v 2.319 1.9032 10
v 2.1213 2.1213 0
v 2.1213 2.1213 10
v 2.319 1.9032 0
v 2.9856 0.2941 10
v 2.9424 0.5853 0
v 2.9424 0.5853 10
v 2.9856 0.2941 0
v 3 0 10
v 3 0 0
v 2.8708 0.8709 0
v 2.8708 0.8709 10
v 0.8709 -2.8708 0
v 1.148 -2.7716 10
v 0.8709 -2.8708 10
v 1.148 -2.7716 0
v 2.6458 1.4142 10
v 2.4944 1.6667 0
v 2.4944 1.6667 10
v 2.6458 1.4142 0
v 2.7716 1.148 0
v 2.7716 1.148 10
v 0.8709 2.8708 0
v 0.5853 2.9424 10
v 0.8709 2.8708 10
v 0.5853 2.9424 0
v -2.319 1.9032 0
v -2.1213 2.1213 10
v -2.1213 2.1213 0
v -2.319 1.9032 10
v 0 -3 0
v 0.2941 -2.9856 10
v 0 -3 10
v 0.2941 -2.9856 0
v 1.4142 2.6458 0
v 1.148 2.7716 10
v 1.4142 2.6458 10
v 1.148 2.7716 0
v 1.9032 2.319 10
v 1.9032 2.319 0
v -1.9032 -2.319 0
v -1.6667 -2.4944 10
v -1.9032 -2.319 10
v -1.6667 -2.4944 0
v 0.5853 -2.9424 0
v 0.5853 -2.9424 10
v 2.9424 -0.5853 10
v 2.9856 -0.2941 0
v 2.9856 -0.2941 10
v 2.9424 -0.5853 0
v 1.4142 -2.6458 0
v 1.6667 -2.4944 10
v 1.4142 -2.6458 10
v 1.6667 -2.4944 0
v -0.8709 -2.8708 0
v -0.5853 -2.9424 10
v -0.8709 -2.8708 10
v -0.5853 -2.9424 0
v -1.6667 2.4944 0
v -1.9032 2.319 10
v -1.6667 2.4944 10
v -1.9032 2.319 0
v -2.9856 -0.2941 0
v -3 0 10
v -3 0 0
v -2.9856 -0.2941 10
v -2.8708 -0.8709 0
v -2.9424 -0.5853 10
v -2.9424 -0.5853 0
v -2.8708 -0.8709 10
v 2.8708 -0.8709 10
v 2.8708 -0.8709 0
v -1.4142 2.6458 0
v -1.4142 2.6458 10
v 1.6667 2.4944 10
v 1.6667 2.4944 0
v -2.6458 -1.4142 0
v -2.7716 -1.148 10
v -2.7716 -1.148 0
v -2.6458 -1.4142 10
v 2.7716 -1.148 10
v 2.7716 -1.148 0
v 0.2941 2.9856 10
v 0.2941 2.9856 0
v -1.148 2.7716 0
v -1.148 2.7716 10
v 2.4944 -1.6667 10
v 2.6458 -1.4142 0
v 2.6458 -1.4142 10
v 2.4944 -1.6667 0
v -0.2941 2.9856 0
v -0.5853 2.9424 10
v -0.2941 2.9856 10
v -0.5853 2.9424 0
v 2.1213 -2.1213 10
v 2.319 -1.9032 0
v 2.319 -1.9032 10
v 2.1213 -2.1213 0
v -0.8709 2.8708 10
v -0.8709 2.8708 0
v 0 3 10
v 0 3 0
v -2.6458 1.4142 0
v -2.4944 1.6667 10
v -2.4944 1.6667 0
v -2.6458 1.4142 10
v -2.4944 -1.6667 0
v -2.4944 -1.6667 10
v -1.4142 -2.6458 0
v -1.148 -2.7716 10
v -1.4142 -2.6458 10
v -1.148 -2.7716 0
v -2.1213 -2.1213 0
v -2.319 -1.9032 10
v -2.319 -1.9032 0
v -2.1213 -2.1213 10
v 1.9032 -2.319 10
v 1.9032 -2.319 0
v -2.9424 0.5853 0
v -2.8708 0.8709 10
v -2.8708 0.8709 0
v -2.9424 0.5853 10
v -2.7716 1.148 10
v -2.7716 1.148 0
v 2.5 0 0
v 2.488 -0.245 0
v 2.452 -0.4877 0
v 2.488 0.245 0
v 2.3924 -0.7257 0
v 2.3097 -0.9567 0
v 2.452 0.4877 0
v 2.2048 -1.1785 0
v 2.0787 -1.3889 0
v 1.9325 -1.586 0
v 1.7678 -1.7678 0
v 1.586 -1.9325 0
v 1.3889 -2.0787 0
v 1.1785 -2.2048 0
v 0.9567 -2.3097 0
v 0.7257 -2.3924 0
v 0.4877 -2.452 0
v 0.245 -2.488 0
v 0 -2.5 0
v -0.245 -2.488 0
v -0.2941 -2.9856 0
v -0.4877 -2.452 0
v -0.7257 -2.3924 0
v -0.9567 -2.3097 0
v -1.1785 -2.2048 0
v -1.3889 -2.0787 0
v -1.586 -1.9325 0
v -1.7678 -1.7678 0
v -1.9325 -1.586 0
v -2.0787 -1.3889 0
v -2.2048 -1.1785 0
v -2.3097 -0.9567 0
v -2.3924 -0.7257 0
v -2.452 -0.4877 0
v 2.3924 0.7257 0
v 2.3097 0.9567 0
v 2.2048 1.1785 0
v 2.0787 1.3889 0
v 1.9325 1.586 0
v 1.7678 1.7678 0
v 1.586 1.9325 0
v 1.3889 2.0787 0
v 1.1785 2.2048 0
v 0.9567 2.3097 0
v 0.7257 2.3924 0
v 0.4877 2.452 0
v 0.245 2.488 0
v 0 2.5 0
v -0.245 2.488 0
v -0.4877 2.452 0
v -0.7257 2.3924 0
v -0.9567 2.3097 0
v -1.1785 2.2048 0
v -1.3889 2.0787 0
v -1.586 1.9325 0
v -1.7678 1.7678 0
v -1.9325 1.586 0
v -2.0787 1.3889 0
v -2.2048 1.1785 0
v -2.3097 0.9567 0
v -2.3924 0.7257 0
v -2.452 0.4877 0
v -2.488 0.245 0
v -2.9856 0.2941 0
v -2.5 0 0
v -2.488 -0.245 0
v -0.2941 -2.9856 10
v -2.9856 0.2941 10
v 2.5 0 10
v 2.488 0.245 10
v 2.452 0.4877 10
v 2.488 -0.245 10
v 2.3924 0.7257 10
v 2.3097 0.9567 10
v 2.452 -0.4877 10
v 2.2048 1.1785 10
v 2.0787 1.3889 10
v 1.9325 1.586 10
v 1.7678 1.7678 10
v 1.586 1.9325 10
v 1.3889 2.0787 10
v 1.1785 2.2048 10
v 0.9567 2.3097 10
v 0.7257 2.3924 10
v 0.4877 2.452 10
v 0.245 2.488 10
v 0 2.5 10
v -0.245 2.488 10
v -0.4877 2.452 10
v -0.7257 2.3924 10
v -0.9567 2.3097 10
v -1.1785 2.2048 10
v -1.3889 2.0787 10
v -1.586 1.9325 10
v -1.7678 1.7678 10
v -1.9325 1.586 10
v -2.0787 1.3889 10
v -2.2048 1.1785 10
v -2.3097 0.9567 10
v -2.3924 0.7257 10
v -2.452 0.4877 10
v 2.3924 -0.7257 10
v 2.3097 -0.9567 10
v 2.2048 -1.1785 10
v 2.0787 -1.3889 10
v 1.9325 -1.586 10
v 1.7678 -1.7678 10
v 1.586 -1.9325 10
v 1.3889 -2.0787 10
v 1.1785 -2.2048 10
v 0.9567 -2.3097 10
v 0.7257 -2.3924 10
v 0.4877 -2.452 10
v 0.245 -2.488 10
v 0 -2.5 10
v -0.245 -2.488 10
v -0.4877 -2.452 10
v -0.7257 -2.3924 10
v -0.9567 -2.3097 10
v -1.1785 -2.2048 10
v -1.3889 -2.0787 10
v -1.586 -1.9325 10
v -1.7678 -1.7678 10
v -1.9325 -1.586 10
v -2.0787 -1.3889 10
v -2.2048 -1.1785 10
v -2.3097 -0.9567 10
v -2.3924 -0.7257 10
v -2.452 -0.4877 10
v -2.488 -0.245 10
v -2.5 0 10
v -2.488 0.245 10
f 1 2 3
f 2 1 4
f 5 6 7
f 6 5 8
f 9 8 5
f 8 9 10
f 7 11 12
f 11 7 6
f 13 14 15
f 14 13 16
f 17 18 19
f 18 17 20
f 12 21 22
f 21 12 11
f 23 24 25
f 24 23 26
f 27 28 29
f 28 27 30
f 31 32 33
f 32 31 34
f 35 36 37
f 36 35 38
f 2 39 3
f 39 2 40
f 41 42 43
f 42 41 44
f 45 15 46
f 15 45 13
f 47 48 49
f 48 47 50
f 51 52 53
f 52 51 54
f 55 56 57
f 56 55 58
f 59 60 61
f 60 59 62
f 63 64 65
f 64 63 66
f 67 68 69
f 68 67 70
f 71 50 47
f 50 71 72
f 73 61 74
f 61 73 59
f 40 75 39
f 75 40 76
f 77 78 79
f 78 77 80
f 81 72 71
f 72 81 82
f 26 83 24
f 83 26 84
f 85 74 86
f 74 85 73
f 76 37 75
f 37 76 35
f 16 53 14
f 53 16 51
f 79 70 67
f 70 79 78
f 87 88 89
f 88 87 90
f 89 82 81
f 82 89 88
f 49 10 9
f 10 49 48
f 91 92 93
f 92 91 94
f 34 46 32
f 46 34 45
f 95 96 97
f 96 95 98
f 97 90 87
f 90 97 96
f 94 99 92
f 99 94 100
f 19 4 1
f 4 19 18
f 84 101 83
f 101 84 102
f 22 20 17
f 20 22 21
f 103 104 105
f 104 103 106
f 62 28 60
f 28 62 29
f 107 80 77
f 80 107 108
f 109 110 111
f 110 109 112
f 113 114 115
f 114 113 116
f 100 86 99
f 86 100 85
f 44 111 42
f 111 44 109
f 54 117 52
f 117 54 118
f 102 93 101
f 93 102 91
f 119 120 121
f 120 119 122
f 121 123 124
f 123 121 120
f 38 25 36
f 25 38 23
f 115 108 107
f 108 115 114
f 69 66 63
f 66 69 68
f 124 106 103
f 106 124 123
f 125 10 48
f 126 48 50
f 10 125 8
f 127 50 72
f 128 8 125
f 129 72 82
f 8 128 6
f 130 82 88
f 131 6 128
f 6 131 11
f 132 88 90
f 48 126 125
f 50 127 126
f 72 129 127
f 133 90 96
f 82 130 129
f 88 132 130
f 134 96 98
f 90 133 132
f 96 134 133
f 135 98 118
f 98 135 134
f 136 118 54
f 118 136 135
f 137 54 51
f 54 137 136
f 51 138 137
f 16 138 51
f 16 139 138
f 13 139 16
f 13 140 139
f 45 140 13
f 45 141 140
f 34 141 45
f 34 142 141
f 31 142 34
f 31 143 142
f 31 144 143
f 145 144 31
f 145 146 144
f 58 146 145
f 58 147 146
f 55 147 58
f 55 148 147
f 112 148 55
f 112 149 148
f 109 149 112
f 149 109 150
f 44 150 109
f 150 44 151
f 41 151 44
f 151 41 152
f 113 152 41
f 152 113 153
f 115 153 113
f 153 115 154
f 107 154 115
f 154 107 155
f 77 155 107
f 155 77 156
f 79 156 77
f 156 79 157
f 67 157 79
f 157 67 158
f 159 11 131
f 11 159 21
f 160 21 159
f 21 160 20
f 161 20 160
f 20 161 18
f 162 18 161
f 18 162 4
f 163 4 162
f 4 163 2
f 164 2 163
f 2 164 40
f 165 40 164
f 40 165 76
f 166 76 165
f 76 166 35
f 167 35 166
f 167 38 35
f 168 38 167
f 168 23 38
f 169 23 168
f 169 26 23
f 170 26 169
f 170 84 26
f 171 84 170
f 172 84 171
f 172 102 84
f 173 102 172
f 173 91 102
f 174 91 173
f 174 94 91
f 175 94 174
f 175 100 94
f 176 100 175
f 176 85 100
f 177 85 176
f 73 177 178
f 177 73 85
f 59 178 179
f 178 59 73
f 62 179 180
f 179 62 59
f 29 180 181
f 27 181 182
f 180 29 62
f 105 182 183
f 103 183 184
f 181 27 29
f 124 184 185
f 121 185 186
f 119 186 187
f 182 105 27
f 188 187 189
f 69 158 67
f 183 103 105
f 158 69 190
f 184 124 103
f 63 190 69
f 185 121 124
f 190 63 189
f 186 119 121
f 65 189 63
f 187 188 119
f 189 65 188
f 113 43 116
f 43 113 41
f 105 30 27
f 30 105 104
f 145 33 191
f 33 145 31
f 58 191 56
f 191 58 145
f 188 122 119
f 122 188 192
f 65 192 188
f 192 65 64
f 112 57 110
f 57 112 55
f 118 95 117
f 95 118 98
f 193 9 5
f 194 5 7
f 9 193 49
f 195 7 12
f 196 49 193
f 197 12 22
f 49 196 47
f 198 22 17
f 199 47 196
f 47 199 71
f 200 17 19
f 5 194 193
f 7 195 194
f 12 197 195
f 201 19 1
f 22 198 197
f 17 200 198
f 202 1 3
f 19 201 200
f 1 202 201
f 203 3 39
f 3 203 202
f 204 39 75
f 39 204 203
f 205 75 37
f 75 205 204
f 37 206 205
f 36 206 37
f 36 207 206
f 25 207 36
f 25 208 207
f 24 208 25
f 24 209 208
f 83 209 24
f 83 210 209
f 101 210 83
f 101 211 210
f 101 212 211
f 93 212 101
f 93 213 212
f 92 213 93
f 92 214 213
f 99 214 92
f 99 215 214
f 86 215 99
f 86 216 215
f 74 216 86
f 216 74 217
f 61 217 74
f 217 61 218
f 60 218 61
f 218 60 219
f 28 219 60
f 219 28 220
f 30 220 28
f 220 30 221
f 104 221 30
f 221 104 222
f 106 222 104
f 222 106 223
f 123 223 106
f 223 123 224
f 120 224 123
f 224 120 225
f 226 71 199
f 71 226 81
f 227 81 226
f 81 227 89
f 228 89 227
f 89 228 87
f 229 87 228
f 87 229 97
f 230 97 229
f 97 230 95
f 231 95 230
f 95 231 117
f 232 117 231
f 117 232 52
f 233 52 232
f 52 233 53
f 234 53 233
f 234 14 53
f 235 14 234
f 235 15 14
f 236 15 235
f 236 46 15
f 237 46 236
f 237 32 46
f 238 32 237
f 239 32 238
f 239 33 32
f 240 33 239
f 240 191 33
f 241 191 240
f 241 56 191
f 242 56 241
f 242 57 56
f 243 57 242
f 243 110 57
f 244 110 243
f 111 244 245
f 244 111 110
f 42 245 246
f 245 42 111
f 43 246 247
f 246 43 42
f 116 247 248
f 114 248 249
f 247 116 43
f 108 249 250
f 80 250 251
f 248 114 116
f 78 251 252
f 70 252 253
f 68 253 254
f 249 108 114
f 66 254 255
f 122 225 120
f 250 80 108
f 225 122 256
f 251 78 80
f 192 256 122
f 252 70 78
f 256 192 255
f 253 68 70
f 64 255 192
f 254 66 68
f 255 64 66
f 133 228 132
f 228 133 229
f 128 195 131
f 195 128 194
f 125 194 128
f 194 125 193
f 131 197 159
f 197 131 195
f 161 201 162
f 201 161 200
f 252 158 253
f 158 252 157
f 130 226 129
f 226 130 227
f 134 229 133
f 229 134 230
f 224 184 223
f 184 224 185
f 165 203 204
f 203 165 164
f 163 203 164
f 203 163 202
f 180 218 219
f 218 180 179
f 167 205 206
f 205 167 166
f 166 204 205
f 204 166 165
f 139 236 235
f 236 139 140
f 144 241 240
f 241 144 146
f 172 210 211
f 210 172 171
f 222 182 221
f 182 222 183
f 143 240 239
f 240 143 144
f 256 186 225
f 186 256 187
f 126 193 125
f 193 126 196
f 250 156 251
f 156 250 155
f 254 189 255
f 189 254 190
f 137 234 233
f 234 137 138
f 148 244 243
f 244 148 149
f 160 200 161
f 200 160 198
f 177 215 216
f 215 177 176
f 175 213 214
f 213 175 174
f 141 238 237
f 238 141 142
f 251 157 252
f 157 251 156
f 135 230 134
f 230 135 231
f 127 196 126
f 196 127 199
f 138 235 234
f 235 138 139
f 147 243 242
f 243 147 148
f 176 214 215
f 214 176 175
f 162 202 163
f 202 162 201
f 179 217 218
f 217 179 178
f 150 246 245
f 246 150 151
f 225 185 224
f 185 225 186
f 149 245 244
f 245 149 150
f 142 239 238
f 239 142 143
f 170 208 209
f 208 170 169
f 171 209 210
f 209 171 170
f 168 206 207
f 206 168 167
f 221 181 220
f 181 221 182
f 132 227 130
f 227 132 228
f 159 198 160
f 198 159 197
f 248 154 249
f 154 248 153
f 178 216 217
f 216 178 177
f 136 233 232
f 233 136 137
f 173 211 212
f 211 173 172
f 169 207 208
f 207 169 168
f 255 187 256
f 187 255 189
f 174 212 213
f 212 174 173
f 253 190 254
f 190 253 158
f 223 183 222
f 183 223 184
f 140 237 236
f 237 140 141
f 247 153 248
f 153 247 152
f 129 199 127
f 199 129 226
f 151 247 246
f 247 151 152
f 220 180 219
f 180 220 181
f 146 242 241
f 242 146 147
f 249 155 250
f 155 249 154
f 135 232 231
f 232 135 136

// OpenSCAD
$fn=64;
e = 0.1;

dia = 6;
wall = 0.5;
hgt = 10;

difference() {
  cylinder( h=hgt, d=dia);
  translate( [0, 0, -e])
    cylinder( h=hgt+2*e, d=dia-2*wall);
}
